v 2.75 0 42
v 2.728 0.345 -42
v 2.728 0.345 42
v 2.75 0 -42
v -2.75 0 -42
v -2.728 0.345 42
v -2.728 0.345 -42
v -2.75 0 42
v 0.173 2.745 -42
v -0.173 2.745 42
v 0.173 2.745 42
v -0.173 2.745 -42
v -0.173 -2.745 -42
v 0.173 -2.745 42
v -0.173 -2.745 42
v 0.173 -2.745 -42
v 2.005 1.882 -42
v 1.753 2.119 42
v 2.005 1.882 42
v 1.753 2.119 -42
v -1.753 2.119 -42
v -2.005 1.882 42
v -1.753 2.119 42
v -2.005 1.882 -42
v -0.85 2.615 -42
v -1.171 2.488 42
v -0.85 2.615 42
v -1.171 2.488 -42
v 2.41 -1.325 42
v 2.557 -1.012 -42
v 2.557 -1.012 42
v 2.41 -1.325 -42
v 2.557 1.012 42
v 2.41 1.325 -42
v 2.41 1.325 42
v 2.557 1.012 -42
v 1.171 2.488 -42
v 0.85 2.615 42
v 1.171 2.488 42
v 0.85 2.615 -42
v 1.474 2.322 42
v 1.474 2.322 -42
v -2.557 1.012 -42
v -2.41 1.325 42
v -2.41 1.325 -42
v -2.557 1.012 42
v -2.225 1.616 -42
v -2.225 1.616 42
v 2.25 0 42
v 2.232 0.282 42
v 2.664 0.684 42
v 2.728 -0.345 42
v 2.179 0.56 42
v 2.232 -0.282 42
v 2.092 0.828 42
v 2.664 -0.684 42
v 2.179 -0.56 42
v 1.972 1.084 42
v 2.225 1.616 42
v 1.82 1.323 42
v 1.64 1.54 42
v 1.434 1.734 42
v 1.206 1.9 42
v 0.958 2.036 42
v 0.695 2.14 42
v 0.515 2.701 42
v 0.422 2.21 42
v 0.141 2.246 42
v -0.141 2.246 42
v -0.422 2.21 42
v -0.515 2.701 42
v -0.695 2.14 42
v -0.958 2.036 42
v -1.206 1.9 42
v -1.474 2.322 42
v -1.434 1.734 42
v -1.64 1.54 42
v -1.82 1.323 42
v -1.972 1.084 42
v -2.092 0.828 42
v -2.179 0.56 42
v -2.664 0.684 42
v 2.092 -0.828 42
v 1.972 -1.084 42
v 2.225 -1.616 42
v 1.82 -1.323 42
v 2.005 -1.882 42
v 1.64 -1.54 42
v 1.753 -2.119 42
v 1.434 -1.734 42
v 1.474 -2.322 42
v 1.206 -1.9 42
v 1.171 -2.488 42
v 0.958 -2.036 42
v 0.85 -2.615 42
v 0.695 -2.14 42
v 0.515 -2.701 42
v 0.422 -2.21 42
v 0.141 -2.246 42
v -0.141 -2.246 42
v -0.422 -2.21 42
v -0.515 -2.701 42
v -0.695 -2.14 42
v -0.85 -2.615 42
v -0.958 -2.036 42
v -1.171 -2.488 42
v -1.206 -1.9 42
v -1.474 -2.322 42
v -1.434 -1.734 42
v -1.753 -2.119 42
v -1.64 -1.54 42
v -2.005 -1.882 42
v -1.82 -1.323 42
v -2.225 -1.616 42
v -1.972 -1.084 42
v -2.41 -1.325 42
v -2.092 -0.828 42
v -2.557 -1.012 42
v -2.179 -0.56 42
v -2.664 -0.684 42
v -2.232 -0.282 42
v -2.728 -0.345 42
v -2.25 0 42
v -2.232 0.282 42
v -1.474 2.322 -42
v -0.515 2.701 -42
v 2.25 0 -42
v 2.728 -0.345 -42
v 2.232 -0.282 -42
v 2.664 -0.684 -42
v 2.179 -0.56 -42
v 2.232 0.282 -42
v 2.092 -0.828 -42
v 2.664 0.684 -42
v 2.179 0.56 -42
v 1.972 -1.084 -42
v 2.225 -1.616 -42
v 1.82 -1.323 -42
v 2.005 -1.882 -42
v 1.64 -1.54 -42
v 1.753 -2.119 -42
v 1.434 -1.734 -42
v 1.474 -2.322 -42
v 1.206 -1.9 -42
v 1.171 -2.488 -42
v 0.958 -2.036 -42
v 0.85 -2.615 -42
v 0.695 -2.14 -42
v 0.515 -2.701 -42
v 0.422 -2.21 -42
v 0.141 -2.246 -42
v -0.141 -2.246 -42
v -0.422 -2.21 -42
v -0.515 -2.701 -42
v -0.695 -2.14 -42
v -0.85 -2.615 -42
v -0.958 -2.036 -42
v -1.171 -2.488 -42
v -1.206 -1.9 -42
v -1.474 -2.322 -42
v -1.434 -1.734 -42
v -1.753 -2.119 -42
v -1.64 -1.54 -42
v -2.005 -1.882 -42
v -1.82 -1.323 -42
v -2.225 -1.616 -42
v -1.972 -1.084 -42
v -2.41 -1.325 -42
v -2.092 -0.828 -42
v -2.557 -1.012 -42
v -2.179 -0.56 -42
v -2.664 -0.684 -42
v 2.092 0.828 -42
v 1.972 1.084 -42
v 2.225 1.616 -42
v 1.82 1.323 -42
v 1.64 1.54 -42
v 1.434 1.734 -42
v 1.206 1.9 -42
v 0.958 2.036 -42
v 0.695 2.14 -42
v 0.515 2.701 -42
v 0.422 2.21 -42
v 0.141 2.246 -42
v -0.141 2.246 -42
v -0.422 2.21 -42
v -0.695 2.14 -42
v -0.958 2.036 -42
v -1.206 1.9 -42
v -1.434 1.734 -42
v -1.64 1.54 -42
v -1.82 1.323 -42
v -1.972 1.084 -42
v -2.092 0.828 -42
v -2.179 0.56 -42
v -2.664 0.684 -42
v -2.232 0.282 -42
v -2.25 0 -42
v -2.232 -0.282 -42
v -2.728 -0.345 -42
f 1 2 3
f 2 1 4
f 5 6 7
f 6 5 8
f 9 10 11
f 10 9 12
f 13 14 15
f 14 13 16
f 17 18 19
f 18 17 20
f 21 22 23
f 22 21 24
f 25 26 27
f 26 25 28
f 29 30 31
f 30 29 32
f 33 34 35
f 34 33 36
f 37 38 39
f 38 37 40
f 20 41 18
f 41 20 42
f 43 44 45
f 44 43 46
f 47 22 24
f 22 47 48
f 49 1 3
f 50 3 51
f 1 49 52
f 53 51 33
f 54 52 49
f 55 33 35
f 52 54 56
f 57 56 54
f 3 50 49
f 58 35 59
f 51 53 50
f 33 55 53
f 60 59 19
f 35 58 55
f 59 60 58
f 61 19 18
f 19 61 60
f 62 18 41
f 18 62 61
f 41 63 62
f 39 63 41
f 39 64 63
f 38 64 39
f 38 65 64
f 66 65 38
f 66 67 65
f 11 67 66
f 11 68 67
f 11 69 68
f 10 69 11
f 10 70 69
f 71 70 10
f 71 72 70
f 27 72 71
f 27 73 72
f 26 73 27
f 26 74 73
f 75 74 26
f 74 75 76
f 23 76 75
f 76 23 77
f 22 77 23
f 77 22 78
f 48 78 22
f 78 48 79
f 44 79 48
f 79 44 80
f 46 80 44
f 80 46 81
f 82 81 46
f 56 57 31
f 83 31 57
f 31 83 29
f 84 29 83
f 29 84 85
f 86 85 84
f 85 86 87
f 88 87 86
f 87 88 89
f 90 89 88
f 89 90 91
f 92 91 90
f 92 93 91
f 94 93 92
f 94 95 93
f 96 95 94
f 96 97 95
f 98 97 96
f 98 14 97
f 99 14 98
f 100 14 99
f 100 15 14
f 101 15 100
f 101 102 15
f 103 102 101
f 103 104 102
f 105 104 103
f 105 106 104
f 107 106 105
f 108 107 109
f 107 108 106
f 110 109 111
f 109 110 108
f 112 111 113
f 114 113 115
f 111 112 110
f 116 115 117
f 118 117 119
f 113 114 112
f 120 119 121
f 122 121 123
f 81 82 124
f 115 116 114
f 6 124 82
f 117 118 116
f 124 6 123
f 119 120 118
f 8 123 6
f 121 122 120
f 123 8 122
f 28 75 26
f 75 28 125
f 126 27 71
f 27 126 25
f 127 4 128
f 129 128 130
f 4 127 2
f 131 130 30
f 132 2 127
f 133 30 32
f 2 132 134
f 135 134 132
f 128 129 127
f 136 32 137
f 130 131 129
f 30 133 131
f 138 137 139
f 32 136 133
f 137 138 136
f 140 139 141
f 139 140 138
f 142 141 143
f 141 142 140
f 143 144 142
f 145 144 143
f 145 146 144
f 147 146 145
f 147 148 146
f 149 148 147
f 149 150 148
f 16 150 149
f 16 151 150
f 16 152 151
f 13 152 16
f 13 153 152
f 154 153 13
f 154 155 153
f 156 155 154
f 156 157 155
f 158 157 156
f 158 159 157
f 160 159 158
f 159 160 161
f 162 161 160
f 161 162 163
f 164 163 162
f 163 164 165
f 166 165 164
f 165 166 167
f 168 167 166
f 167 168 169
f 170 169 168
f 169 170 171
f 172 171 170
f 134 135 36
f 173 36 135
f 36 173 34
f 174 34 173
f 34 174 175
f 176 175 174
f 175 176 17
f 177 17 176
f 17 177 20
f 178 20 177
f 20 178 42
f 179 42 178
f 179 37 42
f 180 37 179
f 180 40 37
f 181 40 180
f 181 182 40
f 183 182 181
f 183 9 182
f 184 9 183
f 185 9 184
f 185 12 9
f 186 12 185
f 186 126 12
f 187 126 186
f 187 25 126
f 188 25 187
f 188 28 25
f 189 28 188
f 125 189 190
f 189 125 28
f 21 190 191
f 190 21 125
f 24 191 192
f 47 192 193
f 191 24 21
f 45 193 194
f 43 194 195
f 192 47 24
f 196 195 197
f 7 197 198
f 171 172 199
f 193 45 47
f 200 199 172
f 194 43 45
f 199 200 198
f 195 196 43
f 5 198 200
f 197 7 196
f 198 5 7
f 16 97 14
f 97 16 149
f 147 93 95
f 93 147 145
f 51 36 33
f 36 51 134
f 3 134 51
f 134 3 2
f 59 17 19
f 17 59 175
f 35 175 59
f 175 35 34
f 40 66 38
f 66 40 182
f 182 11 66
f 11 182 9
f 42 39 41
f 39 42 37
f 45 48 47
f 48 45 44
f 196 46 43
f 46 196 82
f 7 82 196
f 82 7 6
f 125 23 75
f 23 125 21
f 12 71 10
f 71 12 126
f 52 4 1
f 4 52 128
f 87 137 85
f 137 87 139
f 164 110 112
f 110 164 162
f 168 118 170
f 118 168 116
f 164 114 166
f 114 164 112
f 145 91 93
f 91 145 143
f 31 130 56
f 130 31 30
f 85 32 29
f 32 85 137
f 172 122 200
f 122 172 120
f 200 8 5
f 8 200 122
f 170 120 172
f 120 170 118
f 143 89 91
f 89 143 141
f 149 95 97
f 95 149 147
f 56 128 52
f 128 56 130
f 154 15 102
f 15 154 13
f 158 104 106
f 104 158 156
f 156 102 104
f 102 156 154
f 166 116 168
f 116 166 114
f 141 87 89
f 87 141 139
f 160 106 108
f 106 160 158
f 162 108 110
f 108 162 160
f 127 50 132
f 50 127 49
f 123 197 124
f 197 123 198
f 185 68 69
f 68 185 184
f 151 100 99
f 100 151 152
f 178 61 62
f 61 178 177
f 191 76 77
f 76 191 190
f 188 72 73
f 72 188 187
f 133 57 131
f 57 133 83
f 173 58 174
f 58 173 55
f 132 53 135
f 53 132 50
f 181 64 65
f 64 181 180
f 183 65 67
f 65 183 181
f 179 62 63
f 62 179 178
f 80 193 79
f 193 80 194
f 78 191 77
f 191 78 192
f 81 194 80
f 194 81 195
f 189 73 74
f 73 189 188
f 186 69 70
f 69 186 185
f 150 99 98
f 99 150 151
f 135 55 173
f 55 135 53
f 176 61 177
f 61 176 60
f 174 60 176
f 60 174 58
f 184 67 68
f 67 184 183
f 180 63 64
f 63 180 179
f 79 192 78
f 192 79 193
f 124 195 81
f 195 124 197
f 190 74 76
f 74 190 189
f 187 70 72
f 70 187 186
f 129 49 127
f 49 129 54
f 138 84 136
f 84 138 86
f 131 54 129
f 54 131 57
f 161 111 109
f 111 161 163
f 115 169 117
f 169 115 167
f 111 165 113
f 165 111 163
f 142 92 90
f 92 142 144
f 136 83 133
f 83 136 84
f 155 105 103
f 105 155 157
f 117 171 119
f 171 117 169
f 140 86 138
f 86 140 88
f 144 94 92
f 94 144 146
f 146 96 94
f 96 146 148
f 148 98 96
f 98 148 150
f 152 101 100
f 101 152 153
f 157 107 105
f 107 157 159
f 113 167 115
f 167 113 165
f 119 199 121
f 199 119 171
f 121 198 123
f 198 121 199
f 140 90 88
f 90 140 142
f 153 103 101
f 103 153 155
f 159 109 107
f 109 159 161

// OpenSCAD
$fn = 50;


difference() {
	union() {
		translate(v = [0, 0, -42.0000000000]) {
			cylinder(h = 84, r = 2.7500000000);
		}
	}
	union() {
		translate(v = [0, 0, -100.0000000000]) {
			cylinder(h = 200, r = 2.2500000000);
		}
	}
}
